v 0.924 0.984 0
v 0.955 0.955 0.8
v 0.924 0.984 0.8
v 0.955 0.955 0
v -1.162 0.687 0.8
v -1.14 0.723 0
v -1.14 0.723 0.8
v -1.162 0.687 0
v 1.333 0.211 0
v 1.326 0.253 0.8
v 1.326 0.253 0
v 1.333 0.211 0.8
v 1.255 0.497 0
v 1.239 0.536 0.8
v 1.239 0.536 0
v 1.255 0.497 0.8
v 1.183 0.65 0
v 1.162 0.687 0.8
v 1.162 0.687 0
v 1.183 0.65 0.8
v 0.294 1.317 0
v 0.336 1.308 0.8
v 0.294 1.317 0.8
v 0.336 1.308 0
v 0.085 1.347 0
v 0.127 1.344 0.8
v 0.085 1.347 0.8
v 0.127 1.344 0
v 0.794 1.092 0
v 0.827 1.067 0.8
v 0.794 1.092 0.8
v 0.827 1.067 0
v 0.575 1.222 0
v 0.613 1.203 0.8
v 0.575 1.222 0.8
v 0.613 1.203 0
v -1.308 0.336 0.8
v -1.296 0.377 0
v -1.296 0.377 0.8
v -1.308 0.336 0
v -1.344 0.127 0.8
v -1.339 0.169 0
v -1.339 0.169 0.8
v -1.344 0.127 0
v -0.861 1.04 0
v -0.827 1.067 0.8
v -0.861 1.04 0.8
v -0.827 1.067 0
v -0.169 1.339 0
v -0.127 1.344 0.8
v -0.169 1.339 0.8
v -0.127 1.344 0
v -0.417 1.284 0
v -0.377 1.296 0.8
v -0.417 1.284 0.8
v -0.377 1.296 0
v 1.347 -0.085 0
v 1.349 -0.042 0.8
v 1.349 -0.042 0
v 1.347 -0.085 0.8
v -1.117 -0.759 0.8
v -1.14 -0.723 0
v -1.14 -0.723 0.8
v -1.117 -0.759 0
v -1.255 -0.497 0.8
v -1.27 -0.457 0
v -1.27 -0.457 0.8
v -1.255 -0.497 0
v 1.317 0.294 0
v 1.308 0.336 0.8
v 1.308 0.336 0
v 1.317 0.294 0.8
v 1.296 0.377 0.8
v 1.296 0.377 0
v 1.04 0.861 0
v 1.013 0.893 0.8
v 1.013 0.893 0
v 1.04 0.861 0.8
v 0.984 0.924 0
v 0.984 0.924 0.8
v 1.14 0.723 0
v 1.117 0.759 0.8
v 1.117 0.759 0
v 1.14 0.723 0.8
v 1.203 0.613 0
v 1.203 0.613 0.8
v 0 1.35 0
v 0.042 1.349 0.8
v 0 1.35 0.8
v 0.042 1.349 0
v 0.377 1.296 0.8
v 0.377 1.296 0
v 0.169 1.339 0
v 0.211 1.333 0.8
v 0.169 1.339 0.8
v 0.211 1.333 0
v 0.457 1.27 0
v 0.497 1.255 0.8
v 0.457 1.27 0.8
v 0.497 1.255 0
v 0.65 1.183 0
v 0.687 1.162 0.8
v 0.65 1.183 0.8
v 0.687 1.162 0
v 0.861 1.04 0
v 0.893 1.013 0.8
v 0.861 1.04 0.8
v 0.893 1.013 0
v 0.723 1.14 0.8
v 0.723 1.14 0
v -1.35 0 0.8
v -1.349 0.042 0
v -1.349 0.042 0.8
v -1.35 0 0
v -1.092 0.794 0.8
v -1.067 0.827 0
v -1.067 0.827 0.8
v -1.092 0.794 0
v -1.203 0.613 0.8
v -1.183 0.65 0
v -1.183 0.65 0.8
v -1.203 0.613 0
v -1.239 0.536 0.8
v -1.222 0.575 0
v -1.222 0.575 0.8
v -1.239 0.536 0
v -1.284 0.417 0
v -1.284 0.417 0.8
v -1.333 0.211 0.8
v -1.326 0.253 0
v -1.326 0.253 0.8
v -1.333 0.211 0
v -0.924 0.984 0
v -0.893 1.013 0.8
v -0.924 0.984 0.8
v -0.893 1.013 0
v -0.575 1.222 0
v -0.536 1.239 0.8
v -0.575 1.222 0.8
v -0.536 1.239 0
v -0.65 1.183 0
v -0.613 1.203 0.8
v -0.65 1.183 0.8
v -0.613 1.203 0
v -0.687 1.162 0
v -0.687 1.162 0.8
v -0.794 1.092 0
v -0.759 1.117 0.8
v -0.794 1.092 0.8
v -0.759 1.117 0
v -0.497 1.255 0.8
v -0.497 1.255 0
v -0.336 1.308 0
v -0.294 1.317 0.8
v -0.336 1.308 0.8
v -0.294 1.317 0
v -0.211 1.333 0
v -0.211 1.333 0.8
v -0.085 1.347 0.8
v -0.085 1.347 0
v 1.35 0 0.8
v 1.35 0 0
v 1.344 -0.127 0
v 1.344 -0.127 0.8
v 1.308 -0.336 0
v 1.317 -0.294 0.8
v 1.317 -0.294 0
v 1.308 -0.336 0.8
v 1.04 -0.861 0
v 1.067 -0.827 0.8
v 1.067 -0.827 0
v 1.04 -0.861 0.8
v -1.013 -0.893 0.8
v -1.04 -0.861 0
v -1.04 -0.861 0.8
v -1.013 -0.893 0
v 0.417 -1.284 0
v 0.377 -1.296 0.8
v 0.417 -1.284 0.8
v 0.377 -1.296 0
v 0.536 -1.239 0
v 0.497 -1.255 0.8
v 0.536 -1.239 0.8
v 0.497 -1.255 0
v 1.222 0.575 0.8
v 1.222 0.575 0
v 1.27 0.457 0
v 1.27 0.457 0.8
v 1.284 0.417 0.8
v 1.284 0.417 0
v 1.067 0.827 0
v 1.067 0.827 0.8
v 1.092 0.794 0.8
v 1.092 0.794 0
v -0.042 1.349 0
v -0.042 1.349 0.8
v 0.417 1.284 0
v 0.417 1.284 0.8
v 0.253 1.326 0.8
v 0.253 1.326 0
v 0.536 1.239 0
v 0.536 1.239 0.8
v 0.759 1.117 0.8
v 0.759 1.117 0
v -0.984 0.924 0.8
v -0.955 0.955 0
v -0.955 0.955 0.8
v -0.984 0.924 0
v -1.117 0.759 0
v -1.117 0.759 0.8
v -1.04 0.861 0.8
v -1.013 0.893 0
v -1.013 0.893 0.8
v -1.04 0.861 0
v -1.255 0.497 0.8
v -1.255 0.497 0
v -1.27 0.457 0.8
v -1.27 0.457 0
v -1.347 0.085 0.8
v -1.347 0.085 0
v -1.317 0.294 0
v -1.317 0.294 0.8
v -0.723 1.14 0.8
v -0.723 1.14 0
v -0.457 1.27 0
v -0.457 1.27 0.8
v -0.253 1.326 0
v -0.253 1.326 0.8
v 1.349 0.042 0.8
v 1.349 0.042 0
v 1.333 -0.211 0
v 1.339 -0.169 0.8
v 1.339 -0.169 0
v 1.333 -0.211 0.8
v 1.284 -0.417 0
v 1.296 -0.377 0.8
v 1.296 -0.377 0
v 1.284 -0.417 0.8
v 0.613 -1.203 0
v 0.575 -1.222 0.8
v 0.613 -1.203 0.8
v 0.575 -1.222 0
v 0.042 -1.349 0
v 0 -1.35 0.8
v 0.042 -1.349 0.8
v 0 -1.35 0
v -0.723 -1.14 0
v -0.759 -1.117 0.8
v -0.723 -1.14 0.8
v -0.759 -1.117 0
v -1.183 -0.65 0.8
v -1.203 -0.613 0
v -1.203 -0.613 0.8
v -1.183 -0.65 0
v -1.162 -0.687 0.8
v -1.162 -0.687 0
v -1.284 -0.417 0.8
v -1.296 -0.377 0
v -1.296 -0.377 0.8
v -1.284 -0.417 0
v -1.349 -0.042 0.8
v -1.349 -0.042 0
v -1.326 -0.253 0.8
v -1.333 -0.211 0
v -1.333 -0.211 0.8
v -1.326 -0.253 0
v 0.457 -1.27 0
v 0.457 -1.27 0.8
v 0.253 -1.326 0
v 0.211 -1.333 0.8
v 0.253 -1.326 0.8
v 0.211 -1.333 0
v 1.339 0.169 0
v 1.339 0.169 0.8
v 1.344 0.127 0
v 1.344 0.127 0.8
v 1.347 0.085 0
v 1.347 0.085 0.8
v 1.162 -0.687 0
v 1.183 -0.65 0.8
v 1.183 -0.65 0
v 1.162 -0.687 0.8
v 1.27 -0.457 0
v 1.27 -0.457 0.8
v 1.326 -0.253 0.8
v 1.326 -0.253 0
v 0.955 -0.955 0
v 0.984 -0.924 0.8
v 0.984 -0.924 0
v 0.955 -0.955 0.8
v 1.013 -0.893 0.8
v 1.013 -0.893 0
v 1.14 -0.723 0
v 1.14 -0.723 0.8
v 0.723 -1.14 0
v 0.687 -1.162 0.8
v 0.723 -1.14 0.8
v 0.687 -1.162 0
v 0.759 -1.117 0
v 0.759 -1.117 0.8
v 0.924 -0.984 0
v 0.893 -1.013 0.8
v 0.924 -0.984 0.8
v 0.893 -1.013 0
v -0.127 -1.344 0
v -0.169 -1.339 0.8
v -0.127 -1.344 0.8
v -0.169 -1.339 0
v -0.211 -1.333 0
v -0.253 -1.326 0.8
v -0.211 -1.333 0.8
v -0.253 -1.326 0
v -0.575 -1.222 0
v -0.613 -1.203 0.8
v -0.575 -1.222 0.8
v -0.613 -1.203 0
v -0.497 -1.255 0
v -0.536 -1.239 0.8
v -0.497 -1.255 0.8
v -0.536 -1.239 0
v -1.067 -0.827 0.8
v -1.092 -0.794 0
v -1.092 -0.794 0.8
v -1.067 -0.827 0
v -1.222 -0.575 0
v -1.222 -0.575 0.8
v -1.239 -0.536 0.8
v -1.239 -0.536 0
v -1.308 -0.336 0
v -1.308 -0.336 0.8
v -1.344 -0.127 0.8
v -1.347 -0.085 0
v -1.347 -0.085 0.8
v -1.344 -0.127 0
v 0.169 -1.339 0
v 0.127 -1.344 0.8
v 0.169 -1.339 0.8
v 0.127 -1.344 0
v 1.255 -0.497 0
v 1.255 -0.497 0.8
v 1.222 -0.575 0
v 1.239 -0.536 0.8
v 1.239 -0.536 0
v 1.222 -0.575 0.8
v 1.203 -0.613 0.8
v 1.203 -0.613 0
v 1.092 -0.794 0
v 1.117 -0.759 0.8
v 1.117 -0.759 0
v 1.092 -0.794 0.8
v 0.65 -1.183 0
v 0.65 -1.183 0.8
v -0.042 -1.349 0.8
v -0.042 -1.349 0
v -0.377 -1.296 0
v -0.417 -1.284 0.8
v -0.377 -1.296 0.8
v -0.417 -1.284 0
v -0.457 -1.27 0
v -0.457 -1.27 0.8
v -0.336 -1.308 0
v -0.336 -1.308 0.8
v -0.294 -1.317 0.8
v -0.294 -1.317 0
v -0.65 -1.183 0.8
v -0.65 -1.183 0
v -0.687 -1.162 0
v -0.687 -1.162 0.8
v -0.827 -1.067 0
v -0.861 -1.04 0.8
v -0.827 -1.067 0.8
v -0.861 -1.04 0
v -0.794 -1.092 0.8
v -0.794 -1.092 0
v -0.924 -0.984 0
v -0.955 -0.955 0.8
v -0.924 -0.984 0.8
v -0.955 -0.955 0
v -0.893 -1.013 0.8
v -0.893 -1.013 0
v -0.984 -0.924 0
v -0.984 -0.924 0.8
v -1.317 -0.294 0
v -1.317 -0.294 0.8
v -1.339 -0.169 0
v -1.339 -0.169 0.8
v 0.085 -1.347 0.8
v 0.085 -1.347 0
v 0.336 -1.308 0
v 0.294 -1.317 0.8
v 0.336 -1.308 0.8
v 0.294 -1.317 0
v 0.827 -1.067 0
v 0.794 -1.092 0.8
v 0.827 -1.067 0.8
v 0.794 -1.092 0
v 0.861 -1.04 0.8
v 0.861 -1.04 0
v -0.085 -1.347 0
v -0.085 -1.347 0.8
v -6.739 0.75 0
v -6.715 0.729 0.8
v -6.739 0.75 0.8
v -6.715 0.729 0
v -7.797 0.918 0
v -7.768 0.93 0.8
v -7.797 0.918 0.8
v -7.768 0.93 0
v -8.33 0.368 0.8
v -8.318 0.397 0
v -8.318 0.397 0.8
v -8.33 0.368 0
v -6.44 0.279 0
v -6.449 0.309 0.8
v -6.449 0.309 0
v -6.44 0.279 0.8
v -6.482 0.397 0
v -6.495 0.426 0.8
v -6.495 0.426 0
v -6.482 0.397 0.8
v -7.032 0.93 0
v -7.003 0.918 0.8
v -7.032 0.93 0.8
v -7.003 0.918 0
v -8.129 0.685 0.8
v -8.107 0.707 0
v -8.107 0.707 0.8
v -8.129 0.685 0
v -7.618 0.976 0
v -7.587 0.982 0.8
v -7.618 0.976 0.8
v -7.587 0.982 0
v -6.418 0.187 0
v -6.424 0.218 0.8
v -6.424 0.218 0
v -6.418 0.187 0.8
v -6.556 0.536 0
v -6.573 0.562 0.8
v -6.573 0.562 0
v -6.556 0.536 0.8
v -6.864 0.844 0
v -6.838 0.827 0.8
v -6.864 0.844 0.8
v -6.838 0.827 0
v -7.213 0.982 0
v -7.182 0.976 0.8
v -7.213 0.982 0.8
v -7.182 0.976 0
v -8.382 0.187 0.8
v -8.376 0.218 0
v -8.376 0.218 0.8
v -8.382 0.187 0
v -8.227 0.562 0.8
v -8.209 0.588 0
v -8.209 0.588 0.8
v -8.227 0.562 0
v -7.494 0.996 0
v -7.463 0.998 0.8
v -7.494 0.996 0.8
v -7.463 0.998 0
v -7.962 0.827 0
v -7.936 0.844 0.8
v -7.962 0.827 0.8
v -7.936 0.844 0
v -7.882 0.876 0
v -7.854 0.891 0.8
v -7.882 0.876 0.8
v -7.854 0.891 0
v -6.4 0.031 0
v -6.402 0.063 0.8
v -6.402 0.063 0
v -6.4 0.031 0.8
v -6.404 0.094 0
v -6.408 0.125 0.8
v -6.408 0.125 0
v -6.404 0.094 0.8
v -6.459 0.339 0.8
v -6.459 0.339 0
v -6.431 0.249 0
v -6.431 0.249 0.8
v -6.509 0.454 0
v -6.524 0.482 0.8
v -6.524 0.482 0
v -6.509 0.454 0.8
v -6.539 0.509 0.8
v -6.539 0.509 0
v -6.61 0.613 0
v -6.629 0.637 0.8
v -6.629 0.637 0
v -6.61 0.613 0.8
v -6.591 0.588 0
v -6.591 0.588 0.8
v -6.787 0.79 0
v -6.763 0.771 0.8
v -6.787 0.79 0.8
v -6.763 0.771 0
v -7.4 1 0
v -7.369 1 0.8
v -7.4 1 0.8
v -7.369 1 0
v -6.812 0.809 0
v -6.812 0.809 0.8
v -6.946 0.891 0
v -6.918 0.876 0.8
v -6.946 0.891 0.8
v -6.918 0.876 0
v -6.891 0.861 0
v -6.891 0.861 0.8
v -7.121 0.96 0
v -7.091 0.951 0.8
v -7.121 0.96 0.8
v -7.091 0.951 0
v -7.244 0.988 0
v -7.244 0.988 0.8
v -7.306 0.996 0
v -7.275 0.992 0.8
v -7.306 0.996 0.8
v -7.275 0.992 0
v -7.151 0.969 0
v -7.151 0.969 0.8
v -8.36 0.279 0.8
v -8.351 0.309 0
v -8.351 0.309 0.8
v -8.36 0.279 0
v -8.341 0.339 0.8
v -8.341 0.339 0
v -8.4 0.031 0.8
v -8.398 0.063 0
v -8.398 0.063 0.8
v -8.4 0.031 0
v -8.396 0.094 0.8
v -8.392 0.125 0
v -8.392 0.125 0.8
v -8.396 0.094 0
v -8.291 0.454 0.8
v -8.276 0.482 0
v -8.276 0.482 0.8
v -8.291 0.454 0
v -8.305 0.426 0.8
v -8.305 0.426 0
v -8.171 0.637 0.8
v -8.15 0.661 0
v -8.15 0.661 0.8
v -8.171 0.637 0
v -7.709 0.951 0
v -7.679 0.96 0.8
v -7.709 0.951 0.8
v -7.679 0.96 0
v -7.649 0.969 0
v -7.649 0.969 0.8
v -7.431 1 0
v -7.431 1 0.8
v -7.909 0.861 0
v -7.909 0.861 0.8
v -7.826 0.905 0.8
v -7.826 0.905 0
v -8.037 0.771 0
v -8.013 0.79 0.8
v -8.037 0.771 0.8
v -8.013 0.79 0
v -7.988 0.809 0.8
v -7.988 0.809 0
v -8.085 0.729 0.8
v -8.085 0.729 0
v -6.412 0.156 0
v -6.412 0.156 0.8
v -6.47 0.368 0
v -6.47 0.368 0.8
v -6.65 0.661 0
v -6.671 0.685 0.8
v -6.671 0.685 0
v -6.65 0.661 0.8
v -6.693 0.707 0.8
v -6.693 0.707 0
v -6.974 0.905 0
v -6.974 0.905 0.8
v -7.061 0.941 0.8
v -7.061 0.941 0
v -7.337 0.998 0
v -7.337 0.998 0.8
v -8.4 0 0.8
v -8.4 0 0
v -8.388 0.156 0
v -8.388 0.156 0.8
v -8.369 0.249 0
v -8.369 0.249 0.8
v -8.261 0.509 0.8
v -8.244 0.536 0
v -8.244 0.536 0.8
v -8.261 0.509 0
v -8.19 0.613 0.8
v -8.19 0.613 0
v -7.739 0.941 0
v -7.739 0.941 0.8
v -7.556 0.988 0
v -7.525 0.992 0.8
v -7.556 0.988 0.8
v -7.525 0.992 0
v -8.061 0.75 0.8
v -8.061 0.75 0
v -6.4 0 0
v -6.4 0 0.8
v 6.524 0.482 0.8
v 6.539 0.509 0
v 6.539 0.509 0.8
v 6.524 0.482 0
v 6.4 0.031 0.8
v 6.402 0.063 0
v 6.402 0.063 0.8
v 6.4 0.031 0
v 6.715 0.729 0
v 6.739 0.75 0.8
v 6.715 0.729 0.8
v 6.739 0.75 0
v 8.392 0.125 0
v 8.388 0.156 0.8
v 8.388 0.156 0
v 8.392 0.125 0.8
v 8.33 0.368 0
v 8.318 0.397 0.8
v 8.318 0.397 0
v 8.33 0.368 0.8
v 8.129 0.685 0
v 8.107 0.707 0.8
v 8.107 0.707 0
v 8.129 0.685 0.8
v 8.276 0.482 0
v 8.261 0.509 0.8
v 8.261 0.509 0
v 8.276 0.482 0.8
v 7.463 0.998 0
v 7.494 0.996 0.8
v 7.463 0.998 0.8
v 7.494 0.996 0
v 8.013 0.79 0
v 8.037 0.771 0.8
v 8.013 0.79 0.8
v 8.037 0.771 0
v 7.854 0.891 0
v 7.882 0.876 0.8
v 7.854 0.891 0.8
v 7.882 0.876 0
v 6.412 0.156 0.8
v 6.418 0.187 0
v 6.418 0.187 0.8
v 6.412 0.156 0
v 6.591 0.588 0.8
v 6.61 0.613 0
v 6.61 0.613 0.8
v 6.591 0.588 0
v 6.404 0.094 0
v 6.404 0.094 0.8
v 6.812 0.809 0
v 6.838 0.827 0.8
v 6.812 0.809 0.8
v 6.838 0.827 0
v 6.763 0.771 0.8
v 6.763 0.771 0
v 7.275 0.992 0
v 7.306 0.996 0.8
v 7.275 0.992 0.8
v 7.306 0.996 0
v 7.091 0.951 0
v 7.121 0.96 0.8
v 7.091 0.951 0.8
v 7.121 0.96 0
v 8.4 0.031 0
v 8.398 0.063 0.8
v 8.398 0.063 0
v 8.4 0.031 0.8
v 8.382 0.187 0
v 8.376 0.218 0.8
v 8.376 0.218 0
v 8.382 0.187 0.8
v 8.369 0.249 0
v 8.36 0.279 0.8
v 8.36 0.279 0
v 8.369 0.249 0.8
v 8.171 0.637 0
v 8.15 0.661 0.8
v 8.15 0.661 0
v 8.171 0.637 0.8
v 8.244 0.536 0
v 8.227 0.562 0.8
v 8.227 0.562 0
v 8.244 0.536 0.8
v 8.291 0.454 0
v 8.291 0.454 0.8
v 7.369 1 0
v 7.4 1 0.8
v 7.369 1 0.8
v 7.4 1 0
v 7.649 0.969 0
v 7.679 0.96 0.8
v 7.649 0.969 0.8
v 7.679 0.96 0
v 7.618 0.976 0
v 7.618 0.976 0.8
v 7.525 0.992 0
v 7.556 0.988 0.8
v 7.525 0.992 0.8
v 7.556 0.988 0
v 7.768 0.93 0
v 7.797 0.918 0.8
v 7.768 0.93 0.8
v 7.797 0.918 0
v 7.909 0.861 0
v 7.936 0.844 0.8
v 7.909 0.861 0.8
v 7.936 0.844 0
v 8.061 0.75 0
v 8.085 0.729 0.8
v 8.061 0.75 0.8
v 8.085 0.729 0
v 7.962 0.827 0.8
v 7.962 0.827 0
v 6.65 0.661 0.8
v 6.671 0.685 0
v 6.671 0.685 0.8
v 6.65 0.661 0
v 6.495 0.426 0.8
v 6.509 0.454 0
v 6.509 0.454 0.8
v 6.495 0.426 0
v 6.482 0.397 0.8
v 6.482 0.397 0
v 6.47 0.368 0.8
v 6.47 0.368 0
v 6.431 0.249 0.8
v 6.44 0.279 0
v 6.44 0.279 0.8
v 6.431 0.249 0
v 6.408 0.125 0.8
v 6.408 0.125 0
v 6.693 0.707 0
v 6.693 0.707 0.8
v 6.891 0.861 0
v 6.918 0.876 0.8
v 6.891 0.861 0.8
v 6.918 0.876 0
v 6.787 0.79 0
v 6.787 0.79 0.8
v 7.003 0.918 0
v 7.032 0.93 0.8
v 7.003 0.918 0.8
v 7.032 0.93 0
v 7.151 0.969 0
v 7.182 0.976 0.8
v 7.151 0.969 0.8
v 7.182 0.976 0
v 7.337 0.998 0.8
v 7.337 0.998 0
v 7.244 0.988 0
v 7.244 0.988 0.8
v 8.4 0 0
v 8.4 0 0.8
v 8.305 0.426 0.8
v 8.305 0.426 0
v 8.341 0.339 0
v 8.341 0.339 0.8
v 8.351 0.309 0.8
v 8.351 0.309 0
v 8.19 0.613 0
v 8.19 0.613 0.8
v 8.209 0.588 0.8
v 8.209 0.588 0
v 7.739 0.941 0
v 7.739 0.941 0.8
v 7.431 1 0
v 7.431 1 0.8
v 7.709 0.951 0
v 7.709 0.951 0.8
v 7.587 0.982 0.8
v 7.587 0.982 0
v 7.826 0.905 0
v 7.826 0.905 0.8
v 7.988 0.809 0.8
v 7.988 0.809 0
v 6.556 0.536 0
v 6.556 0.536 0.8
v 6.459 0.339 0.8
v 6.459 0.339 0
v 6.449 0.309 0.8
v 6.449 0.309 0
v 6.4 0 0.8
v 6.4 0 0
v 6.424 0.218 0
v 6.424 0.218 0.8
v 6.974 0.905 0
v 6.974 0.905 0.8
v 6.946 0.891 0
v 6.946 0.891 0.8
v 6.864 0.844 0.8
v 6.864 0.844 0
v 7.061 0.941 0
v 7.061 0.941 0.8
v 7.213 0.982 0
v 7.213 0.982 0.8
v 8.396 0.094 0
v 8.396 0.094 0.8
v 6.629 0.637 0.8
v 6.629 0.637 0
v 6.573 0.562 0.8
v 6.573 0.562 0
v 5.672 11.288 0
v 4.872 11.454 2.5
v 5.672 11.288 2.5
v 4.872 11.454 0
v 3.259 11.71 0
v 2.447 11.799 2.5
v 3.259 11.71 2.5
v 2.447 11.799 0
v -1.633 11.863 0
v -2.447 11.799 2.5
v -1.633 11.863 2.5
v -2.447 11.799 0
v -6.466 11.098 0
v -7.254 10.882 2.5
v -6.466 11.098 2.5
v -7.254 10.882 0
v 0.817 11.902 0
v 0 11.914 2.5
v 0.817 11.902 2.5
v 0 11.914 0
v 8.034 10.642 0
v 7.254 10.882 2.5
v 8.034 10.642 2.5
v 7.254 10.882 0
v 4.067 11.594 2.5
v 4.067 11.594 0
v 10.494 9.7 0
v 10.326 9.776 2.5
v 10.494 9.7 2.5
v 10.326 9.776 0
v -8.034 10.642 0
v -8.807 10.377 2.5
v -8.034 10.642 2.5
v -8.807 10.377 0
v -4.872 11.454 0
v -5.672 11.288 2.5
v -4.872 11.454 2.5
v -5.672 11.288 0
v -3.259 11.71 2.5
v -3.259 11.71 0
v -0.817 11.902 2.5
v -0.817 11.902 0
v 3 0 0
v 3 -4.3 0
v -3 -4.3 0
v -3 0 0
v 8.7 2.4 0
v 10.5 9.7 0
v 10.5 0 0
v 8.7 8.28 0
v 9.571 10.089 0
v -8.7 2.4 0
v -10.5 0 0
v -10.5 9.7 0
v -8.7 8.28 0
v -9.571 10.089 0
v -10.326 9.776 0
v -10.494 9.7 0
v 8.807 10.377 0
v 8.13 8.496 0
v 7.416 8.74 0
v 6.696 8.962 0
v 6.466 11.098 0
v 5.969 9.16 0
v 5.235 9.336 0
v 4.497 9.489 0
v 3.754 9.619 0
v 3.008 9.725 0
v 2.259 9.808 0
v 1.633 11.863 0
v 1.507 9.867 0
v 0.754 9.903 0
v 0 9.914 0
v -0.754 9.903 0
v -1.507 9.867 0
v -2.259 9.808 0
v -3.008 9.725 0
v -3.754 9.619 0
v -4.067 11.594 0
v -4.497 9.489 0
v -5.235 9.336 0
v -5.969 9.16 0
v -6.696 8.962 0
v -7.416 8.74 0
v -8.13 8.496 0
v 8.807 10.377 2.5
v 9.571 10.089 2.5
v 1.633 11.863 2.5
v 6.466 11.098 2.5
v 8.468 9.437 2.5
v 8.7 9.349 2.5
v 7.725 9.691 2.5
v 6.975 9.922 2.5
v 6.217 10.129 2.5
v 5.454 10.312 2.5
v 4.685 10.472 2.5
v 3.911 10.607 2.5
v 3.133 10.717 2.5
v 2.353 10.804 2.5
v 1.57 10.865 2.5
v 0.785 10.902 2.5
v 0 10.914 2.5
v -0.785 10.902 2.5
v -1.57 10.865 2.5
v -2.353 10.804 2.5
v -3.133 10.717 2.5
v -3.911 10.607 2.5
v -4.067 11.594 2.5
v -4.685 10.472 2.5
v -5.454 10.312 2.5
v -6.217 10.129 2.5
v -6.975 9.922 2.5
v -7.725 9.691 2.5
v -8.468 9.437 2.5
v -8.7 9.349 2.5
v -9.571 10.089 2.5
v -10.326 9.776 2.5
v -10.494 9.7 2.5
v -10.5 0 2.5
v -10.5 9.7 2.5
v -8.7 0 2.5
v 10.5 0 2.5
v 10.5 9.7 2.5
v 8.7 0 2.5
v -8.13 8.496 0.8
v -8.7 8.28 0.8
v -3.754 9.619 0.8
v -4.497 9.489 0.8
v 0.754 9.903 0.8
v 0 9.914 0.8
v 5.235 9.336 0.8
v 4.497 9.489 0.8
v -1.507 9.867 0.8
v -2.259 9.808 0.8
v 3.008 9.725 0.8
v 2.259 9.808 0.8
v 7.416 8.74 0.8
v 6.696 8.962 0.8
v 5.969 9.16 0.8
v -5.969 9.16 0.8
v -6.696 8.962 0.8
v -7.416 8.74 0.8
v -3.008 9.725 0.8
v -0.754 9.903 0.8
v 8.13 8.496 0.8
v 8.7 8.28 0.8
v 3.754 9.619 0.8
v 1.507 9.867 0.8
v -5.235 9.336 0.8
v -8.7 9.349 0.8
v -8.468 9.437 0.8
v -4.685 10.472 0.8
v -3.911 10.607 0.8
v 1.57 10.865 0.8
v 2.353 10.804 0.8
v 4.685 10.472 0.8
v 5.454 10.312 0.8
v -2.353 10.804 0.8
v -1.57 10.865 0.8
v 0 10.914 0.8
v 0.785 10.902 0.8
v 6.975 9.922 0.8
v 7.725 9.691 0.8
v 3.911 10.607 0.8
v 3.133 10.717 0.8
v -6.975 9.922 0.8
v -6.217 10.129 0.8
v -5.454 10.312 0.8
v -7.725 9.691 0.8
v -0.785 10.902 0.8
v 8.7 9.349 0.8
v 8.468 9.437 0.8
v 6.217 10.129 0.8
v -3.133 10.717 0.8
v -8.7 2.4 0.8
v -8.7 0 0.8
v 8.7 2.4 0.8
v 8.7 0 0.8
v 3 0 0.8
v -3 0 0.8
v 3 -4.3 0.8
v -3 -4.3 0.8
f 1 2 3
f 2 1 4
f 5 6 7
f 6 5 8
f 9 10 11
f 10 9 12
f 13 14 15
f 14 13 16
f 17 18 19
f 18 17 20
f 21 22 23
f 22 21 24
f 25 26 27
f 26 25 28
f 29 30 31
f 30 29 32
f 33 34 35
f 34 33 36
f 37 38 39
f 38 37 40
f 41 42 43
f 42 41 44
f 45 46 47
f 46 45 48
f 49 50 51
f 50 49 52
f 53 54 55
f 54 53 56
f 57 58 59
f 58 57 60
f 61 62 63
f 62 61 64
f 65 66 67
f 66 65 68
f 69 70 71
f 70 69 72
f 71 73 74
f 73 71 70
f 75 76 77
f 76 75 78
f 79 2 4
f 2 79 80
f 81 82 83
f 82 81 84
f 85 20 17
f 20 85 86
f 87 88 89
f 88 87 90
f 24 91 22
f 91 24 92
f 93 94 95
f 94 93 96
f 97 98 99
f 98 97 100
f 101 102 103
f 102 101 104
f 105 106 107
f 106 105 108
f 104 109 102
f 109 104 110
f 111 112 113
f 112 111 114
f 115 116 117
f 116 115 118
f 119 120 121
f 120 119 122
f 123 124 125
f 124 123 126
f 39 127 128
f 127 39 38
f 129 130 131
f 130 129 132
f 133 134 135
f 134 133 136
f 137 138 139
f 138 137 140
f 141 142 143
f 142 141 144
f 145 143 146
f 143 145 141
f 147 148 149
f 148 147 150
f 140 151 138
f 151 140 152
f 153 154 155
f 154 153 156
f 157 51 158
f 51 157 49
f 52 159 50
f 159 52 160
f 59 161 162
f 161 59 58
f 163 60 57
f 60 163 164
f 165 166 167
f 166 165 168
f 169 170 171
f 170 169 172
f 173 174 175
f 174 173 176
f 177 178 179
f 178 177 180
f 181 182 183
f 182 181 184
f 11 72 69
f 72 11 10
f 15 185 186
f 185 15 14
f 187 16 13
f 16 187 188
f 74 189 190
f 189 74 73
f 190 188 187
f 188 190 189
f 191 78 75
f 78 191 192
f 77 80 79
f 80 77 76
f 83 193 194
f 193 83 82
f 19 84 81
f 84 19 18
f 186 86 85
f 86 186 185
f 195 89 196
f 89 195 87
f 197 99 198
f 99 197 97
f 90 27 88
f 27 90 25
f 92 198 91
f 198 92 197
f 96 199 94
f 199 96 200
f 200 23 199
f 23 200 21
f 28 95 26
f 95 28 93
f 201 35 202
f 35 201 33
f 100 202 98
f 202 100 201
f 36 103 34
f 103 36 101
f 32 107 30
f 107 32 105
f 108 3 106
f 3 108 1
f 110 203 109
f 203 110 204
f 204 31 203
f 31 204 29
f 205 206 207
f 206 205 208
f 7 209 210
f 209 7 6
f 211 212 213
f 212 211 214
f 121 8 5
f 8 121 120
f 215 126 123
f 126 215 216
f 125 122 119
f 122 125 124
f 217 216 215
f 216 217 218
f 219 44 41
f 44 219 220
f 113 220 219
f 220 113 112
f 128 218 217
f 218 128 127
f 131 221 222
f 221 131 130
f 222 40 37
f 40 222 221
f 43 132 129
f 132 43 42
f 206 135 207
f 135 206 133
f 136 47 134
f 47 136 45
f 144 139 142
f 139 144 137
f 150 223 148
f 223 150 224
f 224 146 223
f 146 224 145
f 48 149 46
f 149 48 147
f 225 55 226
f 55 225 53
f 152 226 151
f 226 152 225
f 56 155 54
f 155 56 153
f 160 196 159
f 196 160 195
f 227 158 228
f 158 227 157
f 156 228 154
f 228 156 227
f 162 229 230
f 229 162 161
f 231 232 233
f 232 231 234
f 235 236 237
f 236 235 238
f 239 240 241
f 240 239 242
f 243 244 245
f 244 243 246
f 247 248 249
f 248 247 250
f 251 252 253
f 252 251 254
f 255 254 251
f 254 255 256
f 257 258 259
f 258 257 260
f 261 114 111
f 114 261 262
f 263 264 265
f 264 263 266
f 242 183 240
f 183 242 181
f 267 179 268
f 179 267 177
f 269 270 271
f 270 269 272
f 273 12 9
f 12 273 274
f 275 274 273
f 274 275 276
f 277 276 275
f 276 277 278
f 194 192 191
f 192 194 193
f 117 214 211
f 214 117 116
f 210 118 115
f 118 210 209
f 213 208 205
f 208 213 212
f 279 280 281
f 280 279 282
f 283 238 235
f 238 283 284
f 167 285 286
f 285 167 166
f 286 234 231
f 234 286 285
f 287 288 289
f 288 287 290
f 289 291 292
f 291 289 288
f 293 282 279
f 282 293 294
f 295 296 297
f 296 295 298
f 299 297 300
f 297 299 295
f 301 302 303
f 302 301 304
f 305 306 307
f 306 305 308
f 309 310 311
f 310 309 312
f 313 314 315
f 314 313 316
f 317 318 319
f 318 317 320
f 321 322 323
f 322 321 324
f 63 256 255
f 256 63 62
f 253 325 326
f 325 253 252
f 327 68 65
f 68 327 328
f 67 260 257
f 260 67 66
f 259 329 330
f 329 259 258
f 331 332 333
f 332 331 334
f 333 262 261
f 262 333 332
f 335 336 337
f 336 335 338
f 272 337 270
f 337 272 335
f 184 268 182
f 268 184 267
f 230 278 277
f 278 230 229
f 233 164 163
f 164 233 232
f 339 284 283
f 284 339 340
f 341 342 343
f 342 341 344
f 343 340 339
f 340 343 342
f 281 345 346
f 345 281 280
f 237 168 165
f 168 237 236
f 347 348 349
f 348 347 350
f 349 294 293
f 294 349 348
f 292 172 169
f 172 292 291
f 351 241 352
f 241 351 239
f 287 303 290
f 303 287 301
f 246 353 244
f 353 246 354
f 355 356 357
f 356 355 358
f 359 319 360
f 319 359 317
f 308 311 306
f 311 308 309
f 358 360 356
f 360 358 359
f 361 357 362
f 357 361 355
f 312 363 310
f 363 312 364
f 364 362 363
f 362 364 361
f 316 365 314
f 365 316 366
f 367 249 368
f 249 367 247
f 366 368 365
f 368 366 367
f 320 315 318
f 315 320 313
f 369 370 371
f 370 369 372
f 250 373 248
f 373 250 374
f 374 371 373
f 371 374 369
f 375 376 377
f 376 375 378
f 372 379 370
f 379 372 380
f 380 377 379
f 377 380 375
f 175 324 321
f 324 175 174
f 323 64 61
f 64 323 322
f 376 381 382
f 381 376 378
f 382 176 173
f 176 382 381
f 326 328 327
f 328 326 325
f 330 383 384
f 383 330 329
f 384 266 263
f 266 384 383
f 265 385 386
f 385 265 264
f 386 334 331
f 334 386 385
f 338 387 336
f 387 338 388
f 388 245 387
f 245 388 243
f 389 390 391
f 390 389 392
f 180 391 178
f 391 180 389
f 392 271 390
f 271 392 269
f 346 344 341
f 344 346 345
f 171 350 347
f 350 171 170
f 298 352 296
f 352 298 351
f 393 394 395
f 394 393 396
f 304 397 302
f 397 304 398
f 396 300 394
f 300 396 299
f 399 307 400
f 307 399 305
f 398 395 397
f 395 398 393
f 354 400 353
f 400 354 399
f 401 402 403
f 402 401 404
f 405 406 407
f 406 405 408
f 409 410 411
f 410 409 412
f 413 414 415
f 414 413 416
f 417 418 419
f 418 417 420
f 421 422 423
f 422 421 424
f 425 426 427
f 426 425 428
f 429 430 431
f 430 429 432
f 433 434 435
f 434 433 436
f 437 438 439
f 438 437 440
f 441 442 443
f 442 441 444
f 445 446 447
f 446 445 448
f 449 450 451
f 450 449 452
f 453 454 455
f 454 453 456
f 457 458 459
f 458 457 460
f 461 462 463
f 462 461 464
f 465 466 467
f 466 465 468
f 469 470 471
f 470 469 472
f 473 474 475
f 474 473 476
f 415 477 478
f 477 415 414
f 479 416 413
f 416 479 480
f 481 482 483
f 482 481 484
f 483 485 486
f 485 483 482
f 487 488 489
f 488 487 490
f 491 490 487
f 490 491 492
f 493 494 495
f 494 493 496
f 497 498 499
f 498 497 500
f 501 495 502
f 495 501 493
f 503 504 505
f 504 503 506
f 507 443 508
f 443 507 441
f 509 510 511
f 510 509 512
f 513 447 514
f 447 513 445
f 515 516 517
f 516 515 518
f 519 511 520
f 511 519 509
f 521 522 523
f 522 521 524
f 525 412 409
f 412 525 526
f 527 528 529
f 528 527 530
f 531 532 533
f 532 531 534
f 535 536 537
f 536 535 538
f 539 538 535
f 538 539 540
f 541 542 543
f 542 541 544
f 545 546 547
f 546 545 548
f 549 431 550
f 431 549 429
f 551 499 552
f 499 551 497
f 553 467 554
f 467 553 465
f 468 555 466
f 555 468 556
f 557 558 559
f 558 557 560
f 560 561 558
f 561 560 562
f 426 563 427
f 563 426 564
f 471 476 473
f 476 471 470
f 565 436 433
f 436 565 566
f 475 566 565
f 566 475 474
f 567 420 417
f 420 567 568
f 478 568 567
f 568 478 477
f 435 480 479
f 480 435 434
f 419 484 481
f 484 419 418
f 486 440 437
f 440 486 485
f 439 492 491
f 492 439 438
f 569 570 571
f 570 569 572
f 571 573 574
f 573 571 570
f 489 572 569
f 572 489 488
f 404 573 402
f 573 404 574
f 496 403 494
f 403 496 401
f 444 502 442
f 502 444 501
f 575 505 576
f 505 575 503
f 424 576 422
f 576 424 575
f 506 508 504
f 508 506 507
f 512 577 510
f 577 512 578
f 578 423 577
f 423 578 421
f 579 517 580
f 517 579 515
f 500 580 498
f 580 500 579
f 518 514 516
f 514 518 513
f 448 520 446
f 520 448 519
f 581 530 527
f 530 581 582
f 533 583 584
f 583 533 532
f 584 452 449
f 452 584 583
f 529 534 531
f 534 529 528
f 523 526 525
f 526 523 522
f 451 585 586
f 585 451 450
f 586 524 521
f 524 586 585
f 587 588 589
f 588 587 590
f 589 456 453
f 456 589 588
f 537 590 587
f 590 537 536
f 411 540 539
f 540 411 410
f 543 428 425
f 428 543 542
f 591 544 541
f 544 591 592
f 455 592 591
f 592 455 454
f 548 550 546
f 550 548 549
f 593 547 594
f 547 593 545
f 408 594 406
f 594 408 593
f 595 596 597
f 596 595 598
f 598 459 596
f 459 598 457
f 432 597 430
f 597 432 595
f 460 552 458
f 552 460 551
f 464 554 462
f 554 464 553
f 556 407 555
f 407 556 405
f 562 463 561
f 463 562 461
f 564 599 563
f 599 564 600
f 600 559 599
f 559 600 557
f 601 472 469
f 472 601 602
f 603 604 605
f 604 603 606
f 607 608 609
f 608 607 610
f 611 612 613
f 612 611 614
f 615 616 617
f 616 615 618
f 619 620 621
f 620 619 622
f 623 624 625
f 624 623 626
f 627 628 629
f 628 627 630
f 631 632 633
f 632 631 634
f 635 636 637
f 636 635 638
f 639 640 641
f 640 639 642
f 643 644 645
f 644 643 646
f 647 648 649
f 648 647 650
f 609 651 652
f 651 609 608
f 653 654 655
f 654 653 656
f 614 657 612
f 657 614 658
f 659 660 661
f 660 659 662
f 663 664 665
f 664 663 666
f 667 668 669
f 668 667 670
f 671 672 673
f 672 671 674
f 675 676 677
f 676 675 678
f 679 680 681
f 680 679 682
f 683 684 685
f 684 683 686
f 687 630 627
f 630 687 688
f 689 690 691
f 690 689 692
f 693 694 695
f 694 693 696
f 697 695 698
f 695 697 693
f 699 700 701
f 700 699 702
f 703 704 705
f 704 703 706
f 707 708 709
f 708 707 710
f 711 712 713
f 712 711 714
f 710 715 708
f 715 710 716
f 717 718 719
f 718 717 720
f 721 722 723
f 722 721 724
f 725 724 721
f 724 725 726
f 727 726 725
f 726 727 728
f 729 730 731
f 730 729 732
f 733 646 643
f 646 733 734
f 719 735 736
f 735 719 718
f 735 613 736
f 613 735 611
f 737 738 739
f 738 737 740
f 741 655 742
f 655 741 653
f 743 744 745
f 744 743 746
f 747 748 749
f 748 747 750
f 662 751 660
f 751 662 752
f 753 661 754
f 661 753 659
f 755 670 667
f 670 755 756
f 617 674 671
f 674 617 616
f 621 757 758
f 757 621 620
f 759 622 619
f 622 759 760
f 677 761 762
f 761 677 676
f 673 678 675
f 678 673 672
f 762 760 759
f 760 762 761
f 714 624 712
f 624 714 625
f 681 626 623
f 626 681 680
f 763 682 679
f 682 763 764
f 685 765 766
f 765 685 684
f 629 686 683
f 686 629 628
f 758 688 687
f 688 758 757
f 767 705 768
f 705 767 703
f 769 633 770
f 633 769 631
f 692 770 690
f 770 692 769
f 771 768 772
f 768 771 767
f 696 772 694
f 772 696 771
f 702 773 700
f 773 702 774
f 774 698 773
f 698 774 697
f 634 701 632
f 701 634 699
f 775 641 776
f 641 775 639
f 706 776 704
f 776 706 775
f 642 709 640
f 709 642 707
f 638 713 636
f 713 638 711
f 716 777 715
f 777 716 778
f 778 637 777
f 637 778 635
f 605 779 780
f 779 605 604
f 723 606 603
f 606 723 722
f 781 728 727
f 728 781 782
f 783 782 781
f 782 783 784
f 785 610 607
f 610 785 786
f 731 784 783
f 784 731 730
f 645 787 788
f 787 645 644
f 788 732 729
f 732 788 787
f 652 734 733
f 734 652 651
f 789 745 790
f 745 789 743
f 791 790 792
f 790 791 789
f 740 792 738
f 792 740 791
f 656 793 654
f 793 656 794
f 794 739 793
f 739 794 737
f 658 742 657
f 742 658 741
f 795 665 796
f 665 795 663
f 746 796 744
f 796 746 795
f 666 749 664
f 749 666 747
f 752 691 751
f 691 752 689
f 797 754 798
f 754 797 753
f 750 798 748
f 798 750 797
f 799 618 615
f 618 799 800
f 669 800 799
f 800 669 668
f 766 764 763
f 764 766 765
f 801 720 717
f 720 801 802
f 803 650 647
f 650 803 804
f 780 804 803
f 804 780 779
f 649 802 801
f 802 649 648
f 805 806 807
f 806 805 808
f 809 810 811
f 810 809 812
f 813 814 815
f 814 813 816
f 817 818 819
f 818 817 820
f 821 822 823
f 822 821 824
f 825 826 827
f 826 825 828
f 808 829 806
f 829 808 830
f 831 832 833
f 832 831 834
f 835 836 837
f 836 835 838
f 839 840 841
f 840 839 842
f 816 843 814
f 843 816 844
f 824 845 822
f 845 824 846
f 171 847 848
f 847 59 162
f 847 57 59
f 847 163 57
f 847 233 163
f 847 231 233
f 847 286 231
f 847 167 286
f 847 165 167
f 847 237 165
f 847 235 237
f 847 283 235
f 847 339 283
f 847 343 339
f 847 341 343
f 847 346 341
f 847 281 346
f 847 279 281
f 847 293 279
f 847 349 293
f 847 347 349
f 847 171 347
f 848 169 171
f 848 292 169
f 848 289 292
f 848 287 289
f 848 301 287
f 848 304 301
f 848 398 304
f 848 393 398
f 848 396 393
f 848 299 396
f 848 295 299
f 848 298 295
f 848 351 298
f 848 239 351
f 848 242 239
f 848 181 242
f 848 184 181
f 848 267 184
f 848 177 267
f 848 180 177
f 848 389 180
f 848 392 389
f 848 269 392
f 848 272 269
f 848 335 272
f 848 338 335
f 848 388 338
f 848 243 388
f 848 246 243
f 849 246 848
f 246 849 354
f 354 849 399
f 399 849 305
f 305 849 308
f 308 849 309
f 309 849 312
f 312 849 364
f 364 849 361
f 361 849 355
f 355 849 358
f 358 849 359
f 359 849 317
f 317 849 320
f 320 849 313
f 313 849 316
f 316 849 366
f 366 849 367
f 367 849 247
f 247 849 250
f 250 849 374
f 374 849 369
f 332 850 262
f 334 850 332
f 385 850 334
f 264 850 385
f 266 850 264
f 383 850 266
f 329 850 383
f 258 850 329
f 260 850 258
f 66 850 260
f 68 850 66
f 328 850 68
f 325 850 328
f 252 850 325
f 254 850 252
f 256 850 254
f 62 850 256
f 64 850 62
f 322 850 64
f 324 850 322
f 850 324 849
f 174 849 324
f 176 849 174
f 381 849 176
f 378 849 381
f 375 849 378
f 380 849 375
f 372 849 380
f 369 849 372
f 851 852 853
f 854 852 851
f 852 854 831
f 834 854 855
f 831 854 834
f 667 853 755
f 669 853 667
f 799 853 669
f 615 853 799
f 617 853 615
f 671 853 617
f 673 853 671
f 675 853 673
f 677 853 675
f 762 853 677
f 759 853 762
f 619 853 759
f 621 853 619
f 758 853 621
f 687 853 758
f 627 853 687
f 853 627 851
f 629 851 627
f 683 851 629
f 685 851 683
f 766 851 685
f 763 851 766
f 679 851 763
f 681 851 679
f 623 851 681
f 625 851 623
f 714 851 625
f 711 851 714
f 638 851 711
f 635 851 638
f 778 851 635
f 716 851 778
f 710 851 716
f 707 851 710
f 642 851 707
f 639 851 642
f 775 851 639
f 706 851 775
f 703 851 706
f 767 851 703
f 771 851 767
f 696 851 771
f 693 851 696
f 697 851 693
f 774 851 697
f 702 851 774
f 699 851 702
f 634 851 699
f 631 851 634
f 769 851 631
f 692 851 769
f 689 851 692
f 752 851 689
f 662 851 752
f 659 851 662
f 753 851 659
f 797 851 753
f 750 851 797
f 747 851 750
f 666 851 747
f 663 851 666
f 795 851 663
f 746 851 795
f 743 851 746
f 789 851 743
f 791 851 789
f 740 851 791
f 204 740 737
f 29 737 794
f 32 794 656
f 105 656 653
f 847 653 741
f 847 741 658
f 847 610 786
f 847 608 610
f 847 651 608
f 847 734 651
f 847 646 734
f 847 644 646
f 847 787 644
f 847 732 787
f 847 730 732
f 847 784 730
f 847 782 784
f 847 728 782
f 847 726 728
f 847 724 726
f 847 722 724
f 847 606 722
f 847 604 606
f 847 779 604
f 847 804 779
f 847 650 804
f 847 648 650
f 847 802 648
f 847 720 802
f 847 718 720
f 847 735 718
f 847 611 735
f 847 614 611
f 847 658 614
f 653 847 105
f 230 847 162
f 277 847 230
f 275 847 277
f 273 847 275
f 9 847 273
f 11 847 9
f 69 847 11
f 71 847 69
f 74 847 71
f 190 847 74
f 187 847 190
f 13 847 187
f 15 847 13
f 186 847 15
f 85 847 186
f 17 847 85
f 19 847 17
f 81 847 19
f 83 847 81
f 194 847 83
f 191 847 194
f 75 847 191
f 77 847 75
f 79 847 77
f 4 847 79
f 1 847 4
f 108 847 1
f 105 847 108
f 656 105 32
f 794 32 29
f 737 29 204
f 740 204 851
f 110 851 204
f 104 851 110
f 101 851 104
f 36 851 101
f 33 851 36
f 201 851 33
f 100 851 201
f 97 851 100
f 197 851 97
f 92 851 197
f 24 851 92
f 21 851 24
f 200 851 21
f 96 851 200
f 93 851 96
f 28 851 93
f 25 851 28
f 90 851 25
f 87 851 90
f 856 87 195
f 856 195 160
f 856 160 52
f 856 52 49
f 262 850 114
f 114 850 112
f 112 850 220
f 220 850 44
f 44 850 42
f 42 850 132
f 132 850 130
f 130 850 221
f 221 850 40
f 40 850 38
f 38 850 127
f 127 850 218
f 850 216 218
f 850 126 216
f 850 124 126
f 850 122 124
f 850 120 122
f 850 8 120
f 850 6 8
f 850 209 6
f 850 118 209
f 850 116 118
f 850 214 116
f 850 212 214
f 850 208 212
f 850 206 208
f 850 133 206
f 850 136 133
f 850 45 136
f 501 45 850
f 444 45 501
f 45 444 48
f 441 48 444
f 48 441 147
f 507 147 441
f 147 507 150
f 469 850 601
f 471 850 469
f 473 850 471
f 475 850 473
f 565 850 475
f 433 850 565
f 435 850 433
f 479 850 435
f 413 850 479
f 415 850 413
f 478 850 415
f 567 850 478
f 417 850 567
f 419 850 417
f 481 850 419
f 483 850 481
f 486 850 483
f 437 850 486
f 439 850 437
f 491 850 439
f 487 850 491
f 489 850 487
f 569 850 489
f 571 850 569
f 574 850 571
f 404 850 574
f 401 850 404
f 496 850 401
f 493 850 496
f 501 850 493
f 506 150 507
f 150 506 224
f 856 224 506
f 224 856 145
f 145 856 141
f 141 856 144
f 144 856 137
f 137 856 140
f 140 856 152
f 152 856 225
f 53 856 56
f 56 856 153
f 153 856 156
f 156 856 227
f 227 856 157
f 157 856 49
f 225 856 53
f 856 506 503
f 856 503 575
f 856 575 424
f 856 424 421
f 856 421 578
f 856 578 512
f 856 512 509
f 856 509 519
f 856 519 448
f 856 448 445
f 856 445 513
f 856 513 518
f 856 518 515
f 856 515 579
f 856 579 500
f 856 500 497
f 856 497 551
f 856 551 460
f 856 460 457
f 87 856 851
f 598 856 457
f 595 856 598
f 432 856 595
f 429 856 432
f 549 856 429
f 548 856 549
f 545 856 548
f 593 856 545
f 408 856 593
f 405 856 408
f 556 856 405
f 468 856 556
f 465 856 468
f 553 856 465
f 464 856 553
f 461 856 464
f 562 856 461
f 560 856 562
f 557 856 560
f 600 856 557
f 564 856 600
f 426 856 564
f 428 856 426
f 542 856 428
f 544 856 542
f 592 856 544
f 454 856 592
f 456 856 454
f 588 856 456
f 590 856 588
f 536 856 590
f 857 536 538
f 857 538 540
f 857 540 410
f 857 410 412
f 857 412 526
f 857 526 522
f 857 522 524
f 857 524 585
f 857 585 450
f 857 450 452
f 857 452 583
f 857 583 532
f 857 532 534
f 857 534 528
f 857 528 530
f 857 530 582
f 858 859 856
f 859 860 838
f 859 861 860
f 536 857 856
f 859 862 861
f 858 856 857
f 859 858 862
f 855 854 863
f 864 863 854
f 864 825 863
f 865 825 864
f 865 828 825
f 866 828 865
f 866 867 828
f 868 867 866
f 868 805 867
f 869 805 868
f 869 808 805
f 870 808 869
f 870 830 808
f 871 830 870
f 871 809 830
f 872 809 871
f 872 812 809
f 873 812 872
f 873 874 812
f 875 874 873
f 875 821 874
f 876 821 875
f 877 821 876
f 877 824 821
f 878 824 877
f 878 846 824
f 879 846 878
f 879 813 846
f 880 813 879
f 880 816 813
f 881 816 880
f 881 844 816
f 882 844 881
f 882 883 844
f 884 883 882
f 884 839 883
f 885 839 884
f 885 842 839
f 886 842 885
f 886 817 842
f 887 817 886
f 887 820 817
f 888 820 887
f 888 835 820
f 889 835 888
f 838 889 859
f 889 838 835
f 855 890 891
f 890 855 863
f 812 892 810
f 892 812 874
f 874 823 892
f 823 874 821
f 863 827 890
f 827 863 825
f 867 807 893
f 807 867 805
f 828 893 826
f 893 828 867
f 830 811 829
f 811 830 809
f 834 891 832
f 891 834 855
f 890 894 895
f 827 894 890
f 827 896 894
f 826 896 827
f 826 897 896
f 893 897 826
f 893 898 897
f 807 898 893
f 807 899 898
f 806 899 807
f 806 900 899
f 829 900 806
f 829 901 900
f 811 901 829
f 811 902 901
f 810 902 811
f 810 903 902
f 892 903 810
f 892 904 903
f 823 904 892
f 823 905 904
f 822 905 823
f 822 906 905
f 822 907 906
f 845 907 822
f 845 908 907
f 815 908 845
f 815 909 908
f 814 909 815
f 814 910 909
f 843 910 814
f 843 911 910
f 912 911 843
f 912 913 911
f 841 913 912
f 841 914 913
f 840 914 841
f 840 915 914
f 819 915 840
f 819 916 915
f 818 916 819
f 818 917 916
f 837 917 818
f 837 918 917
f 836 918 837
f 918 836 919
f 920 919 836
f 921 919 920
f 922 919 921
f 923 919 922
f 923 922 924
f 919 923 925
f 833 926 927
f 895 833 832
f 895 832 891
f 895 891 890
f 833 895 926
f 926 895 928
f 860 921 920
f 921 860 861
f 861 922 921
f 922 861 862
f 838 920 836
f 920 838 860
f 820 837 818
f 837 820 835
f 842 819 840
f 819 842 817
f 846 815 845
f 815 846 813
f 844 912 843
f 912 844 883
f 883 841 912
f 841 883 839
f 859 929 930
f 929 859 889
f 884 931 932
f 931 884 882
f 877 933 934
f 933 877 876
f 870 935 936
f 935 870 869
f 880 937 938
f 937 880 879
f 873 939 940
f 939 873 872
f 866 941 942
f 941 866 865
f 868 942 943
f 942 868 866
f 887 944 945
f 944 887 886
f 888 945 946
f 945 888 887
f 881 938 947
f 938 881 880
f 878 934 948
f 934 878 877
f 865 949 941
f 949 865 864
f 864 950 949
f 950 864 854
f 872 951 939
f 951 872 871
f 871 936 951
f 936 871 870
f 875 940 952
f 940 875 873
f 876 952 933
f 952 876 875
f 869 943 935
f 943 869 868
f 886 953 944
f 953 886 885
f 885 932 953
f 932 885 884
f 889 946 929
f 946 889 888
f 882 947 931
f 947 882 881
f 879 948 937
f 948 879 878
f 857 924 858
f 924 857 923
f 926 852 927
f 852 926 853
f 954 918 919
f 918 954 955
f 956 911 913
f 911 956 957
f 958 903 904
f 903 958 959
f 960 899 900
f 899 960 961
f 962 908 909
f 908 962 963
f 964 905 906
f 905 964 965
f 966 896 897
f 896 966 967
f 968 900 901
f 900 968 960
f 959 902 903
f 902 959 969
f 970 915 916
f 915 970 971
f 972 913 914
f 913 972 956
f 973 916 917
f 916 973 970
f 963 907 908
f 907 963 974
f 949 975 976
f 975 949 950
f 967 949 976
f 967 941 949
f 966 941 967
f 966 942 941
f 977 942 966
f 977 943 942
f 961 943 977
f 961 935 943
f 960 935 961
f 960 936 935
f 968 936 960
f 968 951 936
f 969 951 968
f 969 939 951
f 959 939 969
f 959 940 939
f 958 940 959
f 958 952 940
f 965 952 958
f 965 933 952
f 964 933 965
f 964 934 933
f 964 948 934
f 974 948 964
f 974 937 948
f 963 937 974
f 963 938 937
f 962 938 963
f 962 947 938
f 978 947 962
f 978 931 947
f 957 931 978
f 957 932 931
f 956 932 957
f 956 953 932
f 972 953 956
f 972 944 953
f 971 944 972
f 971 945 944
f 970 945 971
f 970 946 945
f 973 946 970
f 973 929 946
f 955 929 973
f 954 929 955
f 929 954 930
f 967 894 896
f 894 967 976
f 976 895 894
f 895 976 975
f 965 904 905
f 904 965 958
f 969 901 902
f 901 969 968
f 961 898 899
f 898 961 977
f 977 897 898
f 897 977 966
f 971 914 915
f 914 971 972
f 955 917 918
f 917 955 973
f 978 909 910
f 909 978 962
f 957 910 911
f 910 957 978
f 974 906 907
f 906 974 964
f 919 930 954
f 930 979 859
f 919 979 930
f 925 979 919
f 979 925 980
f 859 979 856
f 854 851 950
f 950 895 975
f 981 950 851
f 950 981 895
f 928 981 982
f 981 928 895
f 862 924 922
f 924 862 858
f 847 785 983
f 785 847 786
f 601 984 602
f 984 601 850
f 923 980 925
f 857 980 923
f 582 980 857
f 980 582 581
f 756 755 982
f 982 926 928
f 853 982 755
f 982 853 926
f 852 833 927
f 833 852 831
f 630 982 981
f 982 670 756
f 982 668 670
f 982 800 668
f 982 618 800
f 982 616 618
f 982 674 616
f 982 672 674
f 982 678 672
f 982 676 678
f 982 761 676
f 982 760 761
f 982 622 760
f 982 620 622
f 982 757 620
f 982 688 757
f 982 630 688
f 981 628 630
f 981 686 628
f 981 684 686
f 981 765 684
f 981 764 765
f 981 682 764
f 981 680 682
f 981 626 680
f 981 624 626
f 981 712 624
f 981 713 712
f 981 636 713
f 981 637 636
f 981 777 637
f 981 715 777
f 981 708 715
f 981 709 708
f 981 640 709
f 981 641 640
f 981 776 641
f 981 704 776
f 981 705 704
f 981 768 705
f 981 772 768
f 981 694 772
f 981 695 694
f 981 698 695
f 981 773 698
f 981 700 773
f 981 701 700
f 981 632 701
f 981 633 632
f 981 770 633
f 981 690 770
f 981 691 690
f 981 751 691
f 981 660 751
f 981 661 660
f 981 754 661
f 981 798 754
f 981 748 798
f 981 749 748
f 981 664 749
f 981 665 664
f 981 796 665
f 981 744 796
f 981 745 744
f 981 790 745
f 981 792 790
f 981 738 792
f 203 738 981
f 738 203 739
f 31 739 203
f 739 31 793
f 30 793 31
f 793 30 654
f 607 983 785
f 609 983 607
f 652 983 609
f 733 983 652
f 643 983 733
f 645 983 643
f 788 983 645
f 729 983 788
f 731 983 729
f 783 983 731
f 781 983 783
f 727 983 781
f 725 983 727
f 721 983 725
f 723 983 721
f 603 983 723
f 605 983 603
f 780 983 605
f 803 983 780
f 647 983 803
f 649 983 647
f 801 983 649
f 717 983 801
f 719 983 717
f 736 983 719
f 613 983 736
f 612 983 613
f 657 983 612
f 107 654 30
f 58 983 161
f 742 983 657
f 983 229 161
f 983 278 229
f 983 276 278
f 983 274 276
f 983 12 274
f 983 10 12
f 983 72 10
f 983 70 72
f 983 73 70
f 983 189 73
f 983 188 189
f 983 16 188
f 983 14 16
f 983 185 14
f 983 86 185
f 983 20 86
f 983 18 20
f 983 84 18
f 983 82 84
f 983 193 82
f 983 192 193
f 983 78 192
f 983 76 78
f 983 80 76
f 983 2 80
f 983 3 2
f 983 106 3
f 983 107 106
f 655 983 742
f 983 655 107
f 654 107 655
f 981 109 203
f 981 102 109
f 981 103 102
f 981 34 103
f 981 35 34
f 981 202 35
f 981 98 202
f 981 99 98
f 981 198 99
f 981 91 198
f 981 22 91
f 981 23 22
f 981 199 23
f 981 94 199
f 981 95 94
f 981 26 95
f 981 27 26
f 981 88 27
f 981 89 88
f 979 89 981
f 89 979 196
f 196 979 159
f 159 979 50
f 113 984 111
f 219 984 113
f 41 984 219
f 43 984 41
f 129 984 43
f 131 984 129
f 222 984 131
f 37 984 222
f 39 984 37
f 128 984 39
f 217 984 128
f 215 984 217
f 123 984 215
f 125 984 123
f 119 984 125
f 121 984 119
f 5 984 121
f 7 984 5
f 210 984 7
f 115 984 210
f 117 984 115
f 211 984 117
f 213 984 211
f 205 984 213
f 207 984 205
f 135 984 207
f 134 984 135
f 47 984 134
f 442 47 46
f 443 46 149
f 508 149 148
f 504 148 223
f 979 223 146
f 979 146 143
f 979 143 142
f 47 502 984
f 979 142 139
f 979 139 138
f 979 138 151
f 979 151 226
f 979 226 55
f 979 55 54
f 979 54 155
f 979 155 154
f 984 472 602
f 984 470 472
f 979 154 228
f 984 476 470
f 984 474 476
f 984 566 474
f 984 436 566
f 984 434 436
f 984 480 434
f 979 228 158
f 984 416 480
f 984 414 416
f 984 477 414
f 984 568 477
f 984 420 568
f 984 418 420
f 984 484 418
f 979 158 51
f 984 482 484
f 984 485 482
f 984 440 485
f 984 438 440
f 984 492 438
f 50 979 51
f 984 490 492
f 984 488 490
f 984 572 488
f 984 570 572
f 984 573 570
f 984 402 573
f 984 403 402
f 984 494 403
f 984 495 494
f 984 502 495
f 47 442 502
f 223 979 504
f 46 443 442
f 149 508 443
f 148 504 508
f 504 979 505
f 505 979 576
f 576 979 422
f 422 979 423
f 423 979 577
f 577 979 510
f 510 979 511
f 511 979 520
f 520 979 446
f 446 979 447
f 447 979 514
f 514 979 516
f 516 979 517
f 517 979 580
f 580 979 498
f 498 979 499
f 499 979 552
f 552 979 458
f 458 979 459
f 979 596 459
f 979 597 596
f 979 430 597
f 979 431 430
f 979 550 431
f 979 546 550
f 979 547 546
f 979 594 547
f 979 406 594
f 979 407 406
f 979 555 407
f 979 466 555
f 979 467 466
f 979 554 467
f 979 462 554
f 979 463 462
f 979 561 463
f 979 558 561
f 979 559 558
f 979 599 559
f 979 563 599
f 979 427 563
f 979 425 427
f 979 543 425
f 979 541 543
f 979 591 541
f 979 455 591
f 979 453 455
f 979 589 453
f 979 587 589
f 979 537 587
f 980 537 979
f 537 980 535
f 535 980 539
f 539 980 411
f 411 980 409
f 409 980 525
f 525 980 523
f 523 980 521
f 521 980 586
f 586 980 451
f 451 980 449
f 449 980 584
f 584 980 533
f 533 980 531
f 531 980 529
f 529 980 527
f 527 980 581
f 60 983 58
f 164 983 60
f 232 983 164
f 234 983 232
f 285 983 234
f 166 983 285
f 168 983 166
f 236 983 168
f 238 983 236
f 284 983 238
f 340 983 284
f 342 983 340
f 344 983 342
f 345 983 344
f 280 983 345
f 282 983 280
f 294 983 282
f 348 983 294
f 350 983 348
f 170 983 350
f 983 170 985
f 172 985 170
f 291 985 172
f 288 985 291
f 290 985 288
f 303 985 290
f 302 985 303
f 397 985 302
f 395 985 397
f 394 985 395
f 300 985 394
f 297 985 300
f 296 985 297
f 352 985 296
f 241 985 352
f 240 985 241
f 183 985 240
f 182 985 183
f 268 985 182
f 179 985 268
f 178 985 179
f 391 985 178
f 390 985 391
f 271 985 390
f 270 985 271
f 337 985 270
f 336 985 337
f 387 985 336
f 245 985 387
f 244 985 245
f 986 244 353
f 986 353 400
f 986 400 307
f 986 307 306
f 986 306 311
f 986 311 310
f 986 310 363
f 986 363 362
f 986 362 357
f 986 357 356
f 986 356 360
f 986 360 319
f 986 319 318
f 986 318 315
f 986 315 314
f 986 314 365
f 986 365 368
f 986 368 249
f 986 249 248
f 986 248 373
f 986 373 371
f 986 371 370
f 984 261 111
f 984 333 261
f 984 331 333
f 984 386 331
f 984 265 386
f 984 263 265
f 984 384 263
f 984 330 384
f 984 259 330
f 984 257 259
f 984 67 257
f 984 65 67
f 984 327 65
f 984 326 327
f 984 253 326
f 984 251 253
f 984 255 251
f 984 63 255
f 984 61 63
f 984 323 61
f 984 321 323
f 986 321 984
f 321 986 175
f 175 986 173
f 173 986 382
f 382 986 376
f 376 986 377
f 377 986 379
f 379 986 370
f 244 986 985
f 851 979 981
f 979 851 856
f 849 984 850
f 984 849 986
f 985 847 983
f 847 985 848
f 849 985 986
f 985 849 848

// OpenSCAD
// file: OO_large_coupling.scad
/*
Copyright Luke Wallin 2020

This file is part of Luke Wallin's 3DPrintedTrains project.

The 3DPrintedTrains project is free software: you can redistribute it and/or modify
it under the terms of the GNU General Public License as published by
the Free Software Foundation, either version 3 of the License, or
(at your option) any later version.

The 3DPrintedTrains project is distributed in the hope that it will be useful,
but WITHOUT ANY WARRANTY; without even the implied warranty of
MERCHANTABILITY or FITNESS FOR A PARTICULAR PURPOSE.  See the
GNU General Public License for more details.

You should have received a copy of the GNU General Public License
along with The 3DPrintedTrains project.  If not, see <https:www.gnu.org/licenses/>.
*/

//20.7cm wide

module frontarc(height, radius, width, thickness){
    //arcsegment
    intersection(){

        difference(){
            cylinder(h=height, r=radius, center=false, $fn=200);

            cylinder(h=height*3, r=radius-thickness, center=true, $fn=200);
        }
        
        translate([0,50,0]){
            cube([width,radius*4,height*3], true);
        }
        
    }
}


//the arc with arms and a base. No mechanism to hold hook or connect to train
//arm_thickness=1.8, arm_length = 9.7, coupling_height = 2.5, coupling_width=21, arc_radius = 26, min_thickness = min_thickness, base_width = 2.4, flange_max=2, flange_min=1, min_front_thickness=min_front_thickness
module coupling_base(arm_thickness=1.8, arm_length= 9.7, coupling_height= 2.5, coupling_width=21, arc_radius= 26, min_thickness = 1.5, base_width= 2.4, flange_max=2, flange_min=1, min_front_thickness=0.8){



    arc_offset = sqrt(arc_radius*arc_radius- (coupling_width/2)*(coupling_width/2));

    echo(arc_offset);

    translate([0,arm_length-arc_offset,0]){
        //front arc with notch taken out
        difference(){
            frontarc(height=coupling_height, radius=arc_radius, width=coupling_width, thickness=flange_max);
            translate([0,0,min_front_thickness]){
                frontarc(height=2.5, radius=arc_radius-flange_min, width=coupling_width-arm_thickness*2, thickness=flange_max);
            }
        }
    }

    //arms

    translate([-coupling_width/2,0,0]){
        cube([arm_thickness,arm_length,coupling_height] );
    }

    translate([coupling_width/2-arm_thickness,0,0]){
        cube([arm_thickness,arm_length,coupling_height] );
    }

    //base
    translate([-coupling_width/2,0,0]){
        cube([coupling_width, base_width, min_thickness]);
    }

}

//hook base with sticking out bit for hook to clip on. didn't print well
//x,y are bottom left
module hook_base(x, y, width, length, height, hook_holder_radius, hook_holder_length, hook_holder_end_cap_thickness, hook_holder_height, hook_holder_y){
    
    translate([x,y,0]){
        cube([width, length, height]);
    };
    translate([x+
    width, -hook_holder_y, hook_holder_height]){
        rotate([0,90,0]){
            union(){
                cylinder(h=hook_holder_length, r=hook_holder_radius, $fn=200);
                translate([0,0,hook_holder_length-hook_holder_end_cap_thickness]){
                    cylinder(h=hook_holder_end_cap_thickness, r=hook_holder_radius*1.5, $fn=200);
                }
            }
        }
    }
}

//hook base with a hole on the coupling, works fine but needs an extra bit of wire carefully bent
//x,y are bottom left
module hook_base_hole(x, y, width, length, height, hook_holder_radius, hook_holder_length, hook_holder_end_cap_thickness, hook_holder_height, hook_holder_y){
    difference(){
        translate([x,y,0]){
            cube([width, length, height]);
        };
        translate([x-width, -hook_holder_y, hook_holder_height]){
            rotate([0,90,0]){
              cylinder(h=width*10, r=hook_holder_radius, $fn=200);
            }
        }
    }
}

//attempt at a better clip, so no extra wire will be needed
module hook_base_clip(x, y, width, length, height, hook_holder_radius, hook_holder_length, hook_holder_end_cap_thickness, hook_holder_height, hook_holder_y){

        translate([x,y,0]){
            cube([width, length, height]);
        };
        translate([x+width, -hook_holder_y, hook_holder_height]){
            rotate([0,90,0]){
              cylinder(h=hook_holder_end_cap_thickness, r=hook_holder_radius, $fn=200);
            }
        }
        translate([x+width+hook_holder_end_cap_thickness,y,0]){
            cube([hook_holder_end_cap_thickness, length, hook_holder_height+hook_holder_radius]);
        };
    
}


//basic coupling shape, with no means to attach
module wide_coupling(){
	min_thickness = 1.5;
	difference() {
     
		union(){
				coupling_base(arm_thickness=1.8, arm_length = 9.7, coupling_height = 2.5, coupling_width=21, arc_radius = 26, min_thickness = min_thickness, base_width = 2.4, flange_max=2, flange_min=1, min_front_thickness=min_front_thickness);
		
				
		};
	}
}
// main file
/*
Copyright Luke Wallin 2020

This file is part of Luke Wallin's 3DPrintedTrains project.

The 3DPrintedTrains project is free software: you can redistribute it and/or modify
it under the terms of the GNU General Public License as published by
the Free Software Foundation, either version 3 of the License, or
(at your option) any later version.

The 3DPrintedTrains project is distributed in the hope that it will be useful,
but WITHOUT ANY WARRANTY; without even the implied warranty of
MERCHANTABILITY or FITNESS FOR A PARTICULAR PURPOSE.  See the
GNU General Public License for more details.

You should have received a copy of the GNU General Public License
along with The 3DPrintedTrains project.  If not, see <https:www.gnu.org/licenses/>.
*/

include <OO_large_coupling.scad>


min_thickness = 0.8;




hole_diameter = 2.7;
second_hole_diameters=2;
second_hole_distance=7.4;
main_arm_width = 6;
main_arm_length = 4.3;


difference() {
     
    union(){
            coupling_base(arm_thickness=1.8, arm_length = 9.7, coupling_height = 2.5, coupling_width=21, arc_radius = 26, min_thickness = min_thickness, base_width = 2.4, flange_max=2, flange_min=1);
    
            //add the stub at the bottom for holding the hook
            translate([-main_arm_width/2, -main_arm_length, 0]){
                cube([main_arm_width, main_arm_length, min_thickness]);
        }
    };
    //holes to punch out
   union(){
        cylinder(h=min_thickness*3, r=hole_diameter/2, center = true, $fn=200);
       translate([-second_hole_distance,0,0]){
        cylinder(h=min_thickness*3, r=second_hole_diameters/2, center = true, $fn=200);
       };
       translate([second_hole_distance,0,0]){
        cylinder(h=min_thickness*3, r=second_hole_diameters/2, center = true, $fn=200);
       }
   }
}
